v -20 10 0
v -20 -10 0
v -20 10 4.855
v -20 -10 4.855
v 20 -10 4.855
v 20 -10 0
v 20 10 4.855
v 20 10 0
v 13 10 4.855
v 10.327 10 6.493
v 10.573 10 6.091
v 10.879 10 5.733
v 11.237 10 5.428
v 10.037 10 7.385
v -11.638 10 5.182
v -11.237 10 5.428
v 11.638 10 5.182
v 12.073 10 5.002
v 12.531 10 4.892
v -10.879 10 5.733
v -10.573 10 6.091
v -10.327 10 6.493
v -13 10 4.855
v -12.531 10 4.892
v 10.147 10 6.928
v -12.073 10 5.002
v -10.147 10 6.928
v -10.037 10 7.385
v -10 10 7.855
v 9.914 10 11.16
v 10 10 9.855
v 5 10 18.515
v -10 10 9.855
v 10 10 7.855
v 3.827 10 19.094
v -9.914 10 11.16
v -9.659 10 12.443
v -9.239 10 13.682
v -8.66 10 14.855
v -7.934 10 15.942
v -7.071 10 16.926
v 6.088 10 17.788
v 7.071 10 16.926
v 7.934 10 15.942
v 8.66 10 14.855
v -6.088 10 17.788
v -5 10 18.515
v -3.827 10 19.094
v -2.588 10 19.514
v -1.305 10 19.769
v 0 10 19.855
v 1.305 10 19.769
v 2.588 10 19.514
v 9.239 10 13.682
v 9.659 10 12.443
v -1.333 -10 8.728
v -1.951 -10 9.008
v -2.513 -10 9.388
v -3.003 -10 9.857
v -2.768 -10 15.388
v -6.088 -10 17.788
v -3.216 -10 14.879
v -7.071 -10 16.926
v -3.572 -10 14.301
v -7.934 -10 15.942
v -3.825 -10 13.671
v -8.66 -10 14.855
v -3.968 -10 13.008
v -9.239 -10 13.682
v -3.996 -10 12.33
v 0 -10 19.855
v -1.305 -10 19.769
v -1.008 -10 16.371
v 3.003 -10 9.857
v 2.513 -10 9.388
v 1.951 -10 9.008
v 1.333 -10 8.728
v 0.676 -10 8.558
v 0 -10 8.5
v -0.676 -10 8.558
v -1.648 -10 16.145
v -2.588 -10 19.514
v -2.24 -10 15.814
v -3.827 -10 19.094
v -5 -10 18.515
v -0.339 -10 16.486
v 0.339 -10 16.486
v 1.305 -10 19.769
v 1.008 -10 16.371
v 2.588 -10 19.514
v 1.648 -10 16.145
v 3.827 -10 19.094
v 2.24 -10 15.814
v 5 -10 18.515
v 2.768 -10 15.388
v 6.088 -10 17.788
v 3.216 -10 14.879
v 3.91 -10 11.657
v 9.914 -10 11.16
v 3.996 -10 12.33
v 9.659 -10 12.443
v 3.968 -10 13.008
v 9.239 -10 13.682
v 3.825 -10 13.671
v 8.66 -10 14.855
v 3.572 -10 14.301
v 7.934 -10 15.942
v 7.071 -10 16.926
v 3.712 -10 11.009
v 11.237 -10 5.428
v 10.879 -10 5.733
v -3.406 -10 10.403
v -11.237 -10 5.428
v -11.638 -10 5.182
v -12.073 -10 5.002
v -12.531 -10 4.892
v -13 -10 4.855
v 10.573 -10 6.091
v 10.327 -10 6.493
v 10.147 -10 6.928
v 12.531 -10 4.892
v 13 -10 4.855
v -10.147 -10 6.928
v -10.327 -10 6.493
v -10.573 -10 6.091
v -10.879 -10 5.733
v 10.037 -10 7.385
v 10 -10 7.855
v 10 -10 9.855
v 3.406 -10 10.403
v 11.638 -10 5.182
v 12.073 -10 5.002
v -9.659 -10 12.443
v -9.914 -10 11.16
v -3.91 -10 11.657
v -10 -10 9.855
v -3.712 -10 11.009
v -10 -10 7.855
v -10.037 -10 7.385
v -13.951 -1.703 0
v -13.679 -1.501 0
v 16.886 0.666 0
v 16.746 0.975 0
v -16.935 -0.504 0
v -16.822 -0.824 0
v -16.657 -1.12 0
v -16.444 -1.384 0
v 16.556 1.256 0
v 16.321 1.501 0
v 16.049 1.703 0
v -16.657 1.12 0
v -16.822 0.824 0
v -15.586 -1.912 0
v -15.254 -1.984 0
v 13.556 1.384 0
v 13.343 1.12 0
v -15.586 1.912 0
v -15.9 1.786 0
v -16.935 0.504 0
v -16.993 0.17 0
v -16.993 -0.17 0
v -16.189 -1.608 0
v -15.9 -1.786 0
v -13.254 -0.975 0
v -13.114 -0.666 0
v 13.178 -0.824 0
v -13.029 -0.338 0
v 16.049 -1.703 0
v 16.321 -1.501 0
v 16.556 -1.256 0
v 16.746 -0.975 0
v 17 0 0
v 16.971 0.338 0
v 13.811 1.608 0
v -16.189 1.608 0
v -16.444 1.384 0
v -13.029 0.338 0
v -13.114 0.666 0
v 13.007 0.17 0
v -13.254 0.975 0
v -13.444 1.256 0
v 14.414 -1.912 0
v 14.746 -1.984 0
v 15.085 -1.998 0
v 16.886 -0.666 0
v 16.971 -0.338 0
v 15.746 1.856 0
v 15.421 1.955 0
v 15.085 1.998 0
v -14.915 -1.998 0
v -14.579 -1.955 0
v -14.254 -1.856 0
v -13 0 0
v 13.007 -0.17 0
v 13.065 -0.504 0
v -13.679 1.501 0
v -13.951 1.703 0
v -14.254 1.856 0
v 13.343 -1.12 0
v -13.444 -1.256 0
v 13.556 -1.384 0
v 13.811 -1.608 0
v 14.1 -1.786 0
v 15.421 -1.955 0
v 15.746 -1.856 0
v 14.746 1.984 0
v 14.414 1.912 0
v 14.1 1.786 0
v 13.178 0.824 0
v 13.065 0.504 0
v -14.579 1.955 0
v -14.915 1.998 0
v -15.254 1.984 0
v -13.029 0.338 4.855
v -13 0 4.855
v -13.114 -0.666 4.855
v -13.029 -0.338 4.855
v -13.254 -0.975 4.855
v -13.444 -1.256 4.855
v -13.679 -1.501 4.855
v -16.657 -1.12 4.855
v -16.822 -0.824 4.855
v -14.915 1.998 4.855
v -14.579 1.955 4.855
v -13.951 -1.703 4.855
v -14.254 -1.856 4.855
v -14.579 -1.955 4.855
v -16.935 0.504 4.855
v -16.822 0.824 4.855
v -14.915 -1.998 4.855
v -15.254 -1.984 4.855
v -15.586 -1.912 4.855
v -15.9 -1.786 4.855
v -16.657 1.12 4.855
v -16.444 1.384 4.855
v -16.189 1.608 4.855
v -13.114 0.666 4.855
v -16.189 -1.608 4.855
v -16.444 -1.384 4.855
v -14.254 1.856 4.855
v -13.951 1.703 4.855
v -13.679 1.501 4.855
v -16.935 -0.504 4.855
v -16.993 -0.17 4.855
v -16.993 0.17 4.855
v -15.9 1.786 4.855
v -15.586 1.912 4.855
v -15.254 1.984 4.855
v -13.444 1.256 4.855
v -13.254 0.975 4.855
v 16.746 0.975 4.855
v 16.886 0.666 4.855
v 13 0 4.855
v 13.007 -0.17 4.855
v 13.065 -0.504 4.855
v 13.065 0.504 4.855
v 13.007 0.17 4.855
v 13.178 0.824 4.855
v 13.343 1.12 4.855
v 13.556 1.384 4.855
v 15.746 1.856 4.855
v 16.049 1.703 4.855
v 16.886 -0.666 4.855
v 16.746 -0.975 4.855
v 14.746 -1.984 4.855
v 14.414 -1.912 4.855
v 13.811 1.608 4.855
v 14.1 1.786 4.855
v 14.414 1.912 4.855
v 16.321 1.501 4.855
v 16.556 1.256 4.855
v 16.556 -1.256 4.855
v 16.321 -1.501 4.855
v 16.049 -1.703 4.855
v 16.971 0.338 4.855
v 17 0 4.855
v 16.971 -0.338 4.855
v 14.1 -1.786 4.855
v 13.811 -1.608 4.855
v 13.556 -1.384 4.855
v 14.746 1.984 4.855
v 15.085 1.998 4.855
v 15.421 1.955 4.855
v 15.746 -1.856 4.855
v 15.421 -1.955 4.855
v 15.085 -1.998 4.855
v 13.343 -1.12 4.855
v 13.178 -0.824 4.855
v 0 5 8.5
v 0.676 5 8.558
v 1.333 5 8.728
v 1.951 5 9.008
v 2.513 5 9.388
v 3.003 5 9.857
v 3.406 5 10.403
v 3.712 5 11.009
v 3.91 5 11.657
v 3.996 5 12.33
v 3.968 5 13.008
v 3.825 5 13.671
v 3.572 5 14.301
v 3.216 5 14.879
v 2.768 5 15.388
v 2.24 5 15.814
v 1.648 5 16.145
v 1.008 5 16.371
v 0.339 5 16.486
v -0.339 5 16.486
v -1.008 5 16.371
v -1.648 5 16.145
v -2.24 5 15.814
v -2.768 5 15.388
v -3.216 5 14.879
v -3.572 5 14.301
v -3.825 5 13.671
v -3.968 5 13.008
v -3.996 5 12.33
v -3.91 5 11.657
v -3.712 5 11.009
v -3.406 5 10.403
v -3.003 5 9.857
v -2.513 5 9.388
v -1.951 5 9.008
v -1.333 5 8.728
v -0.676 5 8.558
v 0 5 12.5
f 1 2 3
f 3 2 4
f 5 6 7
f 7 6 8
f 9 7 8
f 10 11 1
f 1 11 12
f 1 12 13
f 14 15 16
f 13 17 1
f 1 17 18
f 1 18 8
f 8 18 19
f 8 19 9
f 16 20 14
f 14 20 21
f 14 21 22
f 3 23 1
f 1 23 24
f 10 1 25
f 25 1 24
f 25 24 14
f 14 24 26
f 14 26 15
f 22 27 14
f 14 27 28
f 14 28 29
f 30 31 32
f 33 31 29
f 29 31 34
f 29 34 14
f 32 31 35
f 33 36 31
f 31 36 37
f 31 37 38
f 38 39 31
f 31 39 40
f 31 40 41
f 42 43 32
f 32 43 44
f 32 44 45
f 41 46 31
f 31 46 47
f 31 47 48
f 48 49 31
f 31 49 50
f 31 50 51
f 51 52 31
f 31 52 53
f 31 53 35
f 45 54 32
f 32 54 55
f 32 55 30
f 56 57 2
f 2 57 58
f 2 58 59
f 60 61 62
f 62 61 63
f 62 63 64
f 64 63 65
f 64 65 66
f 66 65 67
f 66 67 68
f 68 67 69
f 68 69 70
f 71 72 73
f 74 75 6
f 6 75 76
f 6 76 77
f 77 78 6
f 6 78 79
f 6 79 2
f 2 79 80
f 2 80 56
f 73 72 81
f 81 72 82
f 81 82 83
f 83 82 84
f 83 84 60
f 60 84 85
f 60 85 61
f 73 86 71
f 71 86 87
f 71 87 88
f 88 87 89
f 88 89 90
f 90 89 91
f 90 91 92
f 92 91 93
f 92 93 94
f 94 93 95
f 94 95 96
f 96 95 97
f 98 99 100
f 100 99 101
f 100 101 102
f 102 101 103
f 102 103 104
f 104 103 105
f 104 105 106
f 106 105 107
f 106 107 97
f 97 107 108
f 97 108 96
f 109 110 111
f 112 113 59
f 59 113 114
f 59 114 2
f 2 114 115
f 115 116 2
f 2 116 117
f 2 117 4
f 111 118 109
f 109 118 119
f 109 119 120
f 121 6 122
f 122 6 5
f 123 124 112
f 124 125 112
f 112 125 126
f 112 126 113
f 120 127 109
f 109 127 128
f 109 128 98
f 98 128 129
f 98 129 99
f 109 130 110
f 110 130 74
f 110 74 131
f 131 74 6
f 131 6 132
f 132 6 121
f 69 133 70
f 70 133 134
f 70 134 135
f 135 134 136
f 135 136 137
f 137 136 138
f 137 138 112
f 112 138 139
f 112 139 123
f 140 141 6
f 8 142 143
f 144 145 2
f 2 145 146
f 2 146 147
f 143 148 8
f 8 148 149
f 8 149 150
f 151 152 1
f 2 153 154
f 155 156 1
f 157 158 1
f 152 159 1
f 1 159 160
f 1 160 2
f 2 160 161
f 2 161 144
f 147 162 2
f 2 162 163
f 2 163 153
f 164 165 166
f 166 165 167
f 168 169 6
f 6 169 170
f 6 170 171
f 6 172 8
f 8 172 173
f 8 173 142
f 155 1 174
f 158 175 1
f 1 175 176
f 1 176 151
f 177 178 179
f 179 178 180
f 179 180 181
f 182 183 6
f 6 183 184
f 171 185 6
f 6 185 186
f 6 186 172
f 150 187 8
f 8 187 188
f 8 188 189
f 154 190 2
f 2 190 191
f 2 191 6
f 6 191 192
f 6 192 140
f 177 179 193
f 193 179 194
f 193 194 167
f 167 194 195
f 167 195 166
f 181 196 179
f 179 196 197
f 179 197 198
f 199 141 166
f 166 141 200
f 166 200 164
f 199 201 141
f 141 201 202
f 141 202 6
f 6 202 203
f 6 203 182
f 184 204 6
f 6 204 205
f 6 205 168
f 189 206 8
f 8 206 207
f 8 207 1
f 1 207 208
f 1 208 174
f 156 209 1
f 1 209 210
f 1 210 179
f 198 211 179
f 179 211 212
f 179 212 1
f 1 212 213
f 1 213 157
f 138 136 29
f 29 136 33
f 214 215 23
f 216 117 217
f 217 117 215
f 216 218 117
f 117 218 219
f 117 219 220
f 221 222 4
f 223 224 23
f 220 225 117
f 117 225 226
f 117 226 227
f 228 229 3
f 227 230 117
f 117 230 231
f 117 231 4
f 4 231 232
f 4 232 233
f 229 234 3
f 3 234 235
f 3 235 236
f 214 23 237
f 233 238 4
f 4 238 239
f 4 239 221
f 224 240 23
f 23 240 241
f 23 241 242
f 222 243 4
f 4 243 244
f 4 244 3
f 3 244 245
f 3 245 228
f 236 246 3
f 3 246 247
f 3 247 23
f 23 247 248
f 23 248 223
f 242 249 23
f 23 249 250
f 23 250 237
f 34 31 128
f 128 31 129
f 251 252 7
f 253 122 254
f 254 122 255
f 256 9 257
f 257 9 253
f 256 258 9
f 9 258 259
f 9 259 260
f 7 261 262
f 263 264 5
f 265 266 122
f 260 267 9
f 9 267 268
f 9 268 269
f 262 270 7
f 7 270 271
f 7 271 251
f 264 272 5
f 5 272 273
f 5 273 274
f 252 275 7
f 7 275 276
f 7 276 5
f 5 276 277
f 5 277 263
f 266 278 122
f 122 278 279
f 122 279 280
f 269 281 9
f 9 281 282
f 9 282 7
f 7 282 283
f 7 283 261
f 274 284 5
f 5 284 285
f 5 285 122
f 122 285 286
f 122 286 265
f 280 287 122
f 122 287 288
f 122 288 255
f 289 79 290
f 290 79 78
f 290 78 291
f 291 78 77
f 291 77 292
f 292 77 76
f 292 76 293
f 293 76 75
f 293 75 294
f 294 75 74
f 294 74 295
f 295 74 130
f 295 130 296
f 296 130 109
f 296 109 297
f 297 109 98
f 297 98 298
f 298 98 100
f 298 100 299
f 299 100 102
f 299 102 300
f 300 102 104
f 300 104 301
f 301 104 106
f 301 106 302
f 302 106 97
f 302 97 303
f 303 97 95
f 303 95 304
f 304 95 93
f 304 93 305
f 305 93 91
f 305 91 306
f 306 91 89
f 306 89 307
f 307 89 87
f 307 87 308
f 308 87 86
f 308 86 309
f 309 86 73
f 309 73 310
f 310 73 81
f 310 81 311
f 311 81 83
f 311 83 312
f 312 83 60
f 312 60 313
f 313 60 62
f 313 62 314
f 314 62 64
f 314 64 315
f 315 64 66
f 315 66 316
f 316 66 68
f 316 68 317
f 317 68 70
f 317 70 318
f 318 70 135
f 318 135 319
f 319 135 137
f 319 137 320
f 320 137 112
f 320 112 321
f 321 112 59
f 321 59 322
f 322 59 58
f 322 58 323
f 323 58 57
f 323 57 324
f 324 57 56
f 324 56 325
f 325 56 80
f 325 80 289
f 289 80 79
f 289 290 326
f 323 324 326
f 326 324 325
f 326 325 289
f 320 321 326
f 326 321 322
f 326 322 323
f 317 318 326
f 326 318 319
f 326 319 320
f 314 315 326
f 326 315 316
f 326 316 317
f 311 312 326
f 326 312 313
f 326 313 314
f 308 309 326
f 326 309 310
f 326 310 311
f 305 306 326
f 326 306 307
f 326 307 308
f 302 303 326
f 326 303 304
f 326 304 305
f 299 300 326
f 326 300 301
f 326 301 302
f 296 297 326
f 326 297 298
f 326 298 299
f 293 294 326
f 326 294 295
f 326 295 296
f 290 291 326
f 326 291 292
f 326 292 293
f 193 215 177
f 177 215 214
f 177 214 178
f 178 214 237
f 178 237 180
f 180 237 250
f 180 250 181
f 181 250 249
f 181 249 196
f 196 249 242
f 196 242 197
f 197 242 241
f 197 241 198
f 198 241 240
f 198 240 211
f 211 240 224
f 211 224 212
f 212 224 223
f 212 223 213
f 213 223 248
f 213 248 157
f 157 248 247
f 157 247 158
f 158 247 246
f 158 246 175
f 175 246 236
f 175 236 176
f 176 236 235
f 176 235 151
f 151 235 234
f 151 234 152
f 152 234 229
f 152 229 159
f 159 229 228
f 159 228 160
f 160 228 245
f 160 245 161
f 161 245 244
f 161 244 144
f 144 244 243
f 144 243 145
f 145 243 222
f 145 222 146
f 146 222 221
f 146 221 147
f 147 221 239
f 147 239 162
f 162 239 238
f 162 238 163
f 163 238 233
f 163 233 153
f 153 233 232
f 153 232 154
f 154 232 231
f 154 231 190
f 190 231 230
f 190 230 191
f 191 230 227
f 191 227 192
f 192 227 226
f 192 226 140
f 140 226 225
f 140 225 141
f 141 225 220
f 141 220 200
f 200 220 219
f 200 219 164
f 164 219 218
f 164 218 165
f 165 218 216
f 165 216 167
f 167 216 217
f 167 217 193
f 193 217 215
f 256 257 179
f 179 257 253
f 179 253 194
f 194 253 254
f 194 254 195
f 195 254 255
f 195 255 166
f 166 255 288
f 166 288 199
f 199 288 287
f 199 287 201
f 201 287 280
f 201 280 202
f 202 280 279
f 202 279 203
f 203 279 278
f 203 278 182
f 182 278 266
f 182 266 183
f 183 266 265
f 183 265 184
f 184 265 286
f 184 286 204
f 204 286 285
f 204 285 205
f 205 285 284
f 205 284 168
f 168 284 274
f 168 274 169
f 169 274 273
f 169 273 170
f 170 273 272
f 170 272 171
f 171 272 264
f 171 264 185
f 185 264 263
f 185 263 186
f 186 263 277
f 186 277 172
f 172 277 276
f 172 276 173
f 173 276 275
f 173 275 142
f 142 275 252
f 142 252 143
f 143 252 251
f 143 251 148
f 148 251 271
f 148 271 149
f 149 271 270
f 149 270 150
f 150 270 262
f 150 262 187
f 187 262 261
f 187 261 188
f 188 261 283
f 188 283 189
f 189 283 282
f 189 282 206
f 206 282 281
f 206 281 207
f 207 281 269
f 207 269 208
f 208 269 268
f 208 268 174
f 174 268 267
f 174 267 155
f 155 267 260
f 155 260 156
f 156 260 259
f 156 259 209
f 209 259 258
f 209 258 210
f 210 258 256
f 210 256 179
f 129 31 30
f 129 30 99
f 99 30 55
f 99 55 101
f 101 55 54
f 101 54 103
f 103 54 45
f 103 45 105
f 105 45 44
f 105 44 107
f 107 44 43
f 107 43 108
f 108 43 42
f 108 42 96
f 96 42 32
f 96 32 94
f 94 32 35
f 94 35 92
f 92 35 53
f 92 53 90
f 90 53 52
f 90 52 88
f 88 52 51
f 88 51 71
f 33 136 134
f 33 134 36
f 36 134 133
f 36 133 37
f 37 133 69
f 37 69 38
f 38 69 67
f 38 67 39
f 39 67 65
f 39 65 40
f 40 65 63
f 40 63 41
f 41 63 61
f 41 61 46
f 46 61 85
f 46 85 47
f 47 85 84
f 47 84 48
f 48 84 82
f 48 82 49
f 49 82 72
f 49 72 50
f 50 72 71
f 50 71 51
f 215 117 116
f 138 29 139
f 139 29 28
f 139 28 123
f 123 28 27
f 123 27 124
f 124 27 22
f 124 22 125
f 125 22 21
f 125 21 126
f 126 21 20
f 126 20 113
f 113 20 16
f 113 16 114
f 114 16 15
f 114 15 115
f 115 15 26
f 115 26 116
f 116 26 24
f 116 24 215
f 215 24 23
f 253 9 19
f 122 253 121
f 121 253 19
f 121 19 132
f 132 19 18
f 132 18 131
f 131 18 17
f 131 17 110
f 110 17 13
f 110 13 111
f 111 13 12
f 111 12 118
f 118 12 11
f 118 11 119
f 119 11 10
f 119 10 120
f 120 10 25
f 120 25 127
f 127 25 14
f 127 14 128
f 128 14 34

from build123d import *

# Parameters (mm, degrees)
SKETCH6_W           = 40
SKETCH6_H           = 20
BOSS_EXTRUDE3_DEPTH = 19.854784811
SKETCH9_W           = 10
SKETCH9_H           = 20
CUT_EXTRUDE6_DEPTH  = 15
SKETCH10_R          = 4
CUT_EXTRUDE7_DEPTH  = 15
SKETCH11_R          = 2
CUT_EXTRUDE8_DEPTH  = 5
FILLET1_R           = 10
FILLET2_R           = 10
FILLET5_R           = 3


with BuildPart() as part:
    # Sketch6 → Boss-Extrude3 (new body)
    with BuildSketch(Plane.XY):
        Rectangle(SKETCH6_W, SKETCH6_H)
    extrude(amount=BOSS_EXTRUDE3_DEPTH)

    # Sketch9 → Cut-Extrude6 (cut)
    with BuildSketch(Plane.XY.offset(19.854784811)):
        with Locations((-15, 0)):
            Rectangle(SKETCH9_W, SKETCH9_H)
        with Locations((15, 0)):
            Rectangle(SKETCH9_W, SKETCH9_H)
    extrude(amount=-CUT_EXTRUDE6_DEPTH, mode=Mode.SUBTRACT)

    # Sketch10 → Cut-Extrude7 (cut)
    with BuildSketch(Plane.XZ.offset(10)):
        with Locations(Location((0, 12.5, 0), (0, 0, 270))):
            Circle(SKETCH10_R)
    extrude(amount=-CUT_EXTRUDE7_DEPTH, mode=Mode.SUBTRACT)

    # Sketch11 → Cut-Extrude8 (cut)
    with BuildSketch(Plane.XY.offset(4.854784811)):
        with Locations((-15, 0)):
            Circle(SKETCH11_R)
        with Locations((15, 0)):
            Circle(SKETCH11_R)
    extrude(amount=-CUT_EXTRUDE8_DEPTH, mode=Mode.SUBTRACT)

    # Fillet1
    fillet1_edges = [part.edges().sort_by_distance(p)[0] for p in [
        (10, 0, 19.854784811),
    ]]
    fillet(fillet1_edges, radius=FILLET1_R)

    # Fillet2
    fillet2_edges = [part.edges().sort_by_distance(p)[0] for p in [
        (-10, 0, 19.854784811),
    ]]
    fillet(fillet2_edges, radius=FILLET2_R - 0.0001)  # a hair under: the kernel refuses the full size

    # Fillet5
    fillet5_edges = [part.edges().sort_by_distance(p)[0] for p in [
        (-10, 0, 4.854784811),
        (10, 0, 4.854784811),
    ]]
    fillet(fillet5_edges, radius=FILLET5_R - 0.0001)  # a hair under: the kernel refuses the full size


solid = part.part
